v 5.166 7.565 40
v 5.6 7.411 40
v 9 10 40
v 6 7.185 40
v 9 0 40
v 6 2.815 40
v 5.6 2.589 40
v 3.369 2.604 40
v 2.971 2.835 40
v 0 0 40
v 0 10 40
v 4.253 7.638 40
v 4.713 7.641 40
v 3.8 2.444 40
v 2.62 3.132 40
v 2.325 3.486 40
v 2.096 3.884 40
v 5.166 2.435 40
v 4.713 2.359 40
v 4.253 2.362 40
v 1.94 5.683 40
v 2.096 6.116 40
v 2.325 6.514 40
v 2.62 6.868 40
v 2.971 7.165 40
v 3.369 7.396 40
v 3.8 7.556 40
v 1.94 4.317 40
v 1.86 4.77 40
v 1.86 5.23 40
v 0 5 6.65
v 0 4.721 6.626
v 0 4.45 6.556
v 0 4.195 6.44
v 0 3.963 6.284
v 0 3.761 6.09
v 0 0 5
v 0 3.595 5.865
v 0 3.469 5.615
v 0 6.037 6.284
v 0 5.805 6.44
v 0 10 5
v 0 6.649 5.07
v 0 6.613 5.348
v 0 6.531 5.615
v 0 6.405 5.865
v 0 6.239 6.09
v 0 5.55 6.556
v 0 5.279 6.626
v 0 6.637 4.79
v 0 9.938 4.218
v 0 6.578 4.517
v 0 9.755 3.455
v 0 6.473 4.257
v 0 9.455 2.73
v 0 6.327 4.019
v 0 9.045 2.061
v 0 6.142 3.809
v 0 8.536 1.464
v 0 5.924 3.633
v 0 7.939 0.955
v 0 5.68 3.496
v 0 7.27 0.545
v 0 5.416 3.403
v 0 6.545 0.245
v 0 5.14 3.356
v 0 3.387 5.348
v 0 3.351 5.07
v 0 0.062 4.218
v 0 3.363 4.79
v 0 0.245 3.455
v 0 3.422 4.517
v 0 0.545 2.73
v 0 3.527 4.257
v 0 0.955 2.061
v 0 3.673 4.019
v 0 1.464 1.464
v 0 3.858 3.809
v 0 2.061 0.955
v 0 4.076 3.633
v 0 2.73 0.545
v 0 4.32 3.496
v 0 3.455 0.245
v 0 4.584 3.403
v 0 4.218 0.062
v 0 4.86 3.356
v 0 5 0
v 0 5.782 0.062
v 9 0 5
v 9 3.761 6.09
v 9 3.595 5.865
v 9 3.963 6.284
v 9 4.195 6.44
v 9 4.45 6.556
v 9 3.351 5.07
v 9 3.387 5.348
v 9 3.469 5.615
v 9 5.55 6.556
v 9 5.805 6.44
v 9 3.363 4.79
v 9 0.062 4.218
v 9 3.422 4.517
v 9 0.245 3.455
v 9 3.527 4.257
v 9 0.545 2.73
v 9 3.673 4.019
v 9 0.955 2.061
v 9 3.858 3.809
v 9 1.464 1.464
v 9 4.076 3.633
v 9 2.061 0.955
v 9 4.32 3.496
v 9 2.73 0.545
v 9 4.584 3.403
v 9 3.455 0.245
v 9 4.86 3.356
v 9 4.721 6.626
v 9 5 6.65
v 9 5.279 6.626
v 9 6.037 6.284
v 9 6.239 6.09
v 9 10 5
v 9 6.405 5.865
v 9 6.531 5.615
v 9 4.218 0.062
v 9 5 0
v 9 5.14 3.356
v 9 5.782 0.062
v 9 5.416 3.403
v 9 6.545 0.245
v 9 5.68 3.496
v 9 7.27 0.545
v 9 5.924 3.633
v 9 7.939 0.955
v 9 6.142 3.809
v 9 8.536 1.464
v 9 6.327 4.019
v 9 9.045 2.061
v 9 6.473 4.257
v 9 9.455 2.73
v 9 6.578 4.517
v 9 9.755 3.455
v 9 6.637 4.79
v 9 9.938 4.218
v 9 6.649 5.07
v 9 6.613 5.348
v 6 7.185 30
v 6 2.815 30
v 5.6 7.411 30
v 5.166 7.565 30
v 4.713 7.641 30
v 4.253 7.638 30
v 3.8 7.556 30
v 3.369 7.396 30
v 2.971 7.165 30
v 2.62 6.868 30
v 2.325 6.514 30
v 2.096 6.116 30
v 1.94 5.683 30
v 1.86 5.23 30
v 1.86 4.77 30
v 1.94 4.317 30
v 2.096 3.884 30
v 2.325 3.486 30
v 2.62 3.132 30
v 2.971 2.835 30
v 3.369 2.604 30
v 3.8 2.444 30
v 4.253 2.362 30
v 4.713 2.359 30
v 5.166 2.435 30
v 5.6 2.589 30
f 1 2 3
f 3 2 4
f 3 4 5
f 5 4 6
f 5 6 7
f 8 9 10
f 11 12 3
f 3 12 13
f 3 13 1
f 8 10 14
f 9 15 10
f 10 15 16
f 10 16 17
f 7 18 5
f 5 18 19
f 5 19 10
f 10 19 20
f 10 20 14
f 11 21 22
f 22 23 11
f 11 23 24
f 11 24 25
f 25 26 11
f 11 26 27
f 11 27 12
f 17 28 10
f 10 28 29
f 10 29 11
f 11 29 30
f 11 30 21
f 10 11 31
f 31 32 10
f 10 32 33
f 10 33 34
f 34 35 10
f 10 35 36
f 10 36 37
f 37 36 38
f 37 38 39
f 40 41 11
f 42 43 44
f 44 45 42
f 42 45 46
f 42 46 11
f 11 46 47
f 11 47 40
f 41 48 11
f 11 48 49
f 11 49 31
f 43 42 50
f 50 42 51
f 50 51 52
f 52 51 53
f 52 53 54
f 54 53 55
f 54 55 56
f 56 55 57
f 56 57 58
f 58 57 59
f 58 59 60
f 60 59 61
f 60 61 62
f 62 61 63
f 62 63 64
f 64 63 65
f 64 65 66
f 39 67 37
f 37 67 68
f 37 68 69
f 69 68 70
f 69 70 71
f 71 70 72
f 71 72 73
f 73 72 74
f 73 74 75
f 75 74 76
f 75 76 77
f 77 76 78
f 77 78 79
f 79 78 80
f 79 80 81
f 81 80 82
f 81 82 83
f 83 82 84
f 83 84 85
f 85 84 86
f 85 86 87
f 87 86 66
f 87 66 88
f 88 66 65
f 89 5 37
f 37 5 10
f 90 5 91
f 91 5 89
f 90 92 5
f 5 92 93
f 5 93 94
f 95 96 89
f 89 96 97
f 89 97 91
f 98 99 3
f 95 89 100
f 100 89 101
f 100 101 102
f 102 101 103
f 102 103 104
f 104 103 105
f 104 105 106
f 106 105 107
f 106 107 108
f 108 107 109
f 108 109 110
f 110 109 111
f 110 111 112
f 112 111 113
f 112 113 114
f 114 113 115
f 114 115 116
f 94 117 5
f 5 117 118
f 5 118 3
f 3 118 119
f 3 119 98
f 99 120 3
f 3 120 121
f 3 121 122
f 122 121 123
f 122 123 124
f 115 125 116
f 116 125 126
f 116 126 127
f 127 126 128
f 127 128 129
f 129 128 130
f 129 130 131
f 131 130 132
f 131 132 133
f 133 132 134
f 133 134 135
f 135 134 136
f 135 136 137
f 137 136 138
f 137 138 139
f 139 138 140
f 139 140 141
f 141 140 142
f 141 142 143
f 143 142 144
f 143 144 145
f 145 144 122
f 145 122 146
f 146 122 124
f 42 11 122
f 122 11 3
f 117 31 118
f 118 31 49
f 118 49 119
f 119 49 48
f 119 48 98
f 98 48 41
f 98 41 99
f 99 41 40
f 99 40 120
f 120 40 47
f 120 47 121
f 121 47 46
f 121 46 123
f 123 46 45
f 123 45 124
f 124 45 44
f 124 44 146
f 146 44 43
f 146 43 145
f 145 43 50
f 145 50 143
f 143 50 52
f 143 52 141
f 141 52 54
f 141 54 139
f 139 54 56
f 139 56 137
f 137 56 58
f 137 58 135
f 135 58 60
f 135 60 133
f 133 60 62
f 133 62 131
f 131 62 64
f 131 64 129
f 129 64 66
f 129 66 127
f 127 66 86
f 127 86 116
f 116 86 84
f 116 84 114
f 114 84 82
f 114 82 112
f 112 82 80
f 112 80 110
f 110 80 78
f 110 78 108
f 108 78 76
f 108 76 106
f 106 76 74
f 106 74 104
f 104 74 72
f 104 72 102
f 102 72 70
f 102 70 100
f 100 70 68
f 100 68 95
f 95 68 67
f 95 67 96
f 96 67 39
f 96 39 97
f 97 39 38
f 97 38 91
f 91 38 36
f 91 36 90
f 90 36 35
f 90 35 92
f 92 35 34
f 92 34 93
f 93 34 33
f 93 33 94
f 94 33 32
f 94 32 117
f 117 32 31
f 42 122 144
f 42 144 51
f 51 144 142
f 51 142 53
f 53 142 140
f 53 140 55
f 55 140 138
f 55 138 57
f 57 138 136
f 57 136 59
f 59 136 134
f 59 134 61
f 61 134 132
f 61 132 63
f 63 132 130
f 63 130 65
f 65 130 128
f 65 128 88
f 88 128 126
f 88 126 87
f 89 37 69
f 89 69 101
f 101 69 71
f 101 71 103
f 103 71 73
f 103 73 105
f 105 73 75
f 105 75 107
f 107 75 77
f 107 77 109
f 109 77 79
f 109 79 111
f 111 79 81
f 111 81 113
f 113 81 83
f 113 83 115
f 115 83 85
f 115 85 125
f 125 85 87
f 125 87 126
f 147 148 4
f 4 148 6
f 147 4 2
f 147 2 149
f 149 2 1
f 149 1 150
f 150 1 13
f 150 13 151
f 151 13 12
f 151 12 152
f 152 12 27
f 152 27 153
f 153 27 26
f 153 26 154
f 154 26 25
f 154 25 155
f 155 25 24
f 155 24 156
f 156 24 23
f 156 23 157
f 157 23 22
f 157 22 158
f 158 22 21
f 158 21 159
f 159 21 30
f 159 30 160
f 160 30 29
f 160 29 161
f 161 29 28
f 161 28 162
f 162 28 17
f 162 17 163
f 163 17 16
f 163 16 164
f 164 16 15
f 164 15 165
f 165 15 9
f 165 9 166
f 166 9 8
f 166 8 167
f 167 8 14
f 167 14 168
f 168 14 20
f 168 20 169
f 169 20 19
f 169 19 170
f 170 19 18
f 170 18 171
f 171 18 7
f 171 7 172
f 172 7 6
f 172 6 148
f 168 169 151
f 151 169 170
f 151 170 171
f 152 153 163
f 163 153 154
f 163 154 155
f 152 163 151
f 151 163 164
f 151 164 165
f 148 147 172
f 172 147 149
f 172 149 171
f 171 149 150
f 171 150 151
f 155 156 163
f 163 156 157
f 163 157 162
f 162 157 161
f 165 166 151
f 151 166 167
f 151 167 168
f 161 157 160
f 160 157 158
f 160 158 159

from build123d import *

# Parameters (mm, degrees)
SKIZZE1_W                       = 9
SKIZZE1_H                       = 10
AUFSATZ_LINEAR_AUSTRAGEN1_DEPTH = 40
SKIZZE3_R                       = 1.65
SCHNITT_LINEAR_AUSTRAGEN2_DEPTH = 43.201895692
VERRUNDUNG1_R                   = 5
SCHNITT_LINEAR_AUSTRAGEN3_DEPTH = 10


with BuildPart() as part:
    # Skizze1 → Aufsatz-Linear austragen1 (new body)
    with BuildSketch(Plane.XY):
        with Locations((4.5, 5)):
            Rectangle(SKIZZE1_W, SKIZZE1_H)
    extrude(amount=AUFSATZ_LINEAR_AUSTRAGEN1_DEPTH)

    # Skizze3 → Schnitt-Linear austragen2 (cut, through all)
    with BuildSketch(Plane.ZY):
        with Locations((5, 5)):
            Circle(SKIZZE3_R)
    extrude(amount=-SCHNITT_LINEAR_AUSTRAGEN2_DEPTH, mode=Mode.SUBTRACT)

    # Verrundung1
    verrundung1_edges = [part.edges().sort_by_distance(p)[0] for p in [
        (4.5, 0, 0),
        (4.5, 10, 0),
    ]]
    fillet(verrundung1_edges, radius=VERRUNDUNG1_R - 0.0001)  # a hair under: the kernel refuses the full size

    # Skizze4 → Schnitt-Linear austragen3 (cut)
    with BuildSketch(Plane.XY.offset(40)):
        with BuildLine():
            Line((6, 2.815394773), (6, 7.184605227))
            ThreePointArc((6, 7.184605227), (1.85, 5), (6, 2.815394773))
        make_face()
    extrude(amount=-SCHNITT_LINEAR_AUSTRAGEN3_DEPTH, mode=Mode.SUBTRACT)


solid = part.part
